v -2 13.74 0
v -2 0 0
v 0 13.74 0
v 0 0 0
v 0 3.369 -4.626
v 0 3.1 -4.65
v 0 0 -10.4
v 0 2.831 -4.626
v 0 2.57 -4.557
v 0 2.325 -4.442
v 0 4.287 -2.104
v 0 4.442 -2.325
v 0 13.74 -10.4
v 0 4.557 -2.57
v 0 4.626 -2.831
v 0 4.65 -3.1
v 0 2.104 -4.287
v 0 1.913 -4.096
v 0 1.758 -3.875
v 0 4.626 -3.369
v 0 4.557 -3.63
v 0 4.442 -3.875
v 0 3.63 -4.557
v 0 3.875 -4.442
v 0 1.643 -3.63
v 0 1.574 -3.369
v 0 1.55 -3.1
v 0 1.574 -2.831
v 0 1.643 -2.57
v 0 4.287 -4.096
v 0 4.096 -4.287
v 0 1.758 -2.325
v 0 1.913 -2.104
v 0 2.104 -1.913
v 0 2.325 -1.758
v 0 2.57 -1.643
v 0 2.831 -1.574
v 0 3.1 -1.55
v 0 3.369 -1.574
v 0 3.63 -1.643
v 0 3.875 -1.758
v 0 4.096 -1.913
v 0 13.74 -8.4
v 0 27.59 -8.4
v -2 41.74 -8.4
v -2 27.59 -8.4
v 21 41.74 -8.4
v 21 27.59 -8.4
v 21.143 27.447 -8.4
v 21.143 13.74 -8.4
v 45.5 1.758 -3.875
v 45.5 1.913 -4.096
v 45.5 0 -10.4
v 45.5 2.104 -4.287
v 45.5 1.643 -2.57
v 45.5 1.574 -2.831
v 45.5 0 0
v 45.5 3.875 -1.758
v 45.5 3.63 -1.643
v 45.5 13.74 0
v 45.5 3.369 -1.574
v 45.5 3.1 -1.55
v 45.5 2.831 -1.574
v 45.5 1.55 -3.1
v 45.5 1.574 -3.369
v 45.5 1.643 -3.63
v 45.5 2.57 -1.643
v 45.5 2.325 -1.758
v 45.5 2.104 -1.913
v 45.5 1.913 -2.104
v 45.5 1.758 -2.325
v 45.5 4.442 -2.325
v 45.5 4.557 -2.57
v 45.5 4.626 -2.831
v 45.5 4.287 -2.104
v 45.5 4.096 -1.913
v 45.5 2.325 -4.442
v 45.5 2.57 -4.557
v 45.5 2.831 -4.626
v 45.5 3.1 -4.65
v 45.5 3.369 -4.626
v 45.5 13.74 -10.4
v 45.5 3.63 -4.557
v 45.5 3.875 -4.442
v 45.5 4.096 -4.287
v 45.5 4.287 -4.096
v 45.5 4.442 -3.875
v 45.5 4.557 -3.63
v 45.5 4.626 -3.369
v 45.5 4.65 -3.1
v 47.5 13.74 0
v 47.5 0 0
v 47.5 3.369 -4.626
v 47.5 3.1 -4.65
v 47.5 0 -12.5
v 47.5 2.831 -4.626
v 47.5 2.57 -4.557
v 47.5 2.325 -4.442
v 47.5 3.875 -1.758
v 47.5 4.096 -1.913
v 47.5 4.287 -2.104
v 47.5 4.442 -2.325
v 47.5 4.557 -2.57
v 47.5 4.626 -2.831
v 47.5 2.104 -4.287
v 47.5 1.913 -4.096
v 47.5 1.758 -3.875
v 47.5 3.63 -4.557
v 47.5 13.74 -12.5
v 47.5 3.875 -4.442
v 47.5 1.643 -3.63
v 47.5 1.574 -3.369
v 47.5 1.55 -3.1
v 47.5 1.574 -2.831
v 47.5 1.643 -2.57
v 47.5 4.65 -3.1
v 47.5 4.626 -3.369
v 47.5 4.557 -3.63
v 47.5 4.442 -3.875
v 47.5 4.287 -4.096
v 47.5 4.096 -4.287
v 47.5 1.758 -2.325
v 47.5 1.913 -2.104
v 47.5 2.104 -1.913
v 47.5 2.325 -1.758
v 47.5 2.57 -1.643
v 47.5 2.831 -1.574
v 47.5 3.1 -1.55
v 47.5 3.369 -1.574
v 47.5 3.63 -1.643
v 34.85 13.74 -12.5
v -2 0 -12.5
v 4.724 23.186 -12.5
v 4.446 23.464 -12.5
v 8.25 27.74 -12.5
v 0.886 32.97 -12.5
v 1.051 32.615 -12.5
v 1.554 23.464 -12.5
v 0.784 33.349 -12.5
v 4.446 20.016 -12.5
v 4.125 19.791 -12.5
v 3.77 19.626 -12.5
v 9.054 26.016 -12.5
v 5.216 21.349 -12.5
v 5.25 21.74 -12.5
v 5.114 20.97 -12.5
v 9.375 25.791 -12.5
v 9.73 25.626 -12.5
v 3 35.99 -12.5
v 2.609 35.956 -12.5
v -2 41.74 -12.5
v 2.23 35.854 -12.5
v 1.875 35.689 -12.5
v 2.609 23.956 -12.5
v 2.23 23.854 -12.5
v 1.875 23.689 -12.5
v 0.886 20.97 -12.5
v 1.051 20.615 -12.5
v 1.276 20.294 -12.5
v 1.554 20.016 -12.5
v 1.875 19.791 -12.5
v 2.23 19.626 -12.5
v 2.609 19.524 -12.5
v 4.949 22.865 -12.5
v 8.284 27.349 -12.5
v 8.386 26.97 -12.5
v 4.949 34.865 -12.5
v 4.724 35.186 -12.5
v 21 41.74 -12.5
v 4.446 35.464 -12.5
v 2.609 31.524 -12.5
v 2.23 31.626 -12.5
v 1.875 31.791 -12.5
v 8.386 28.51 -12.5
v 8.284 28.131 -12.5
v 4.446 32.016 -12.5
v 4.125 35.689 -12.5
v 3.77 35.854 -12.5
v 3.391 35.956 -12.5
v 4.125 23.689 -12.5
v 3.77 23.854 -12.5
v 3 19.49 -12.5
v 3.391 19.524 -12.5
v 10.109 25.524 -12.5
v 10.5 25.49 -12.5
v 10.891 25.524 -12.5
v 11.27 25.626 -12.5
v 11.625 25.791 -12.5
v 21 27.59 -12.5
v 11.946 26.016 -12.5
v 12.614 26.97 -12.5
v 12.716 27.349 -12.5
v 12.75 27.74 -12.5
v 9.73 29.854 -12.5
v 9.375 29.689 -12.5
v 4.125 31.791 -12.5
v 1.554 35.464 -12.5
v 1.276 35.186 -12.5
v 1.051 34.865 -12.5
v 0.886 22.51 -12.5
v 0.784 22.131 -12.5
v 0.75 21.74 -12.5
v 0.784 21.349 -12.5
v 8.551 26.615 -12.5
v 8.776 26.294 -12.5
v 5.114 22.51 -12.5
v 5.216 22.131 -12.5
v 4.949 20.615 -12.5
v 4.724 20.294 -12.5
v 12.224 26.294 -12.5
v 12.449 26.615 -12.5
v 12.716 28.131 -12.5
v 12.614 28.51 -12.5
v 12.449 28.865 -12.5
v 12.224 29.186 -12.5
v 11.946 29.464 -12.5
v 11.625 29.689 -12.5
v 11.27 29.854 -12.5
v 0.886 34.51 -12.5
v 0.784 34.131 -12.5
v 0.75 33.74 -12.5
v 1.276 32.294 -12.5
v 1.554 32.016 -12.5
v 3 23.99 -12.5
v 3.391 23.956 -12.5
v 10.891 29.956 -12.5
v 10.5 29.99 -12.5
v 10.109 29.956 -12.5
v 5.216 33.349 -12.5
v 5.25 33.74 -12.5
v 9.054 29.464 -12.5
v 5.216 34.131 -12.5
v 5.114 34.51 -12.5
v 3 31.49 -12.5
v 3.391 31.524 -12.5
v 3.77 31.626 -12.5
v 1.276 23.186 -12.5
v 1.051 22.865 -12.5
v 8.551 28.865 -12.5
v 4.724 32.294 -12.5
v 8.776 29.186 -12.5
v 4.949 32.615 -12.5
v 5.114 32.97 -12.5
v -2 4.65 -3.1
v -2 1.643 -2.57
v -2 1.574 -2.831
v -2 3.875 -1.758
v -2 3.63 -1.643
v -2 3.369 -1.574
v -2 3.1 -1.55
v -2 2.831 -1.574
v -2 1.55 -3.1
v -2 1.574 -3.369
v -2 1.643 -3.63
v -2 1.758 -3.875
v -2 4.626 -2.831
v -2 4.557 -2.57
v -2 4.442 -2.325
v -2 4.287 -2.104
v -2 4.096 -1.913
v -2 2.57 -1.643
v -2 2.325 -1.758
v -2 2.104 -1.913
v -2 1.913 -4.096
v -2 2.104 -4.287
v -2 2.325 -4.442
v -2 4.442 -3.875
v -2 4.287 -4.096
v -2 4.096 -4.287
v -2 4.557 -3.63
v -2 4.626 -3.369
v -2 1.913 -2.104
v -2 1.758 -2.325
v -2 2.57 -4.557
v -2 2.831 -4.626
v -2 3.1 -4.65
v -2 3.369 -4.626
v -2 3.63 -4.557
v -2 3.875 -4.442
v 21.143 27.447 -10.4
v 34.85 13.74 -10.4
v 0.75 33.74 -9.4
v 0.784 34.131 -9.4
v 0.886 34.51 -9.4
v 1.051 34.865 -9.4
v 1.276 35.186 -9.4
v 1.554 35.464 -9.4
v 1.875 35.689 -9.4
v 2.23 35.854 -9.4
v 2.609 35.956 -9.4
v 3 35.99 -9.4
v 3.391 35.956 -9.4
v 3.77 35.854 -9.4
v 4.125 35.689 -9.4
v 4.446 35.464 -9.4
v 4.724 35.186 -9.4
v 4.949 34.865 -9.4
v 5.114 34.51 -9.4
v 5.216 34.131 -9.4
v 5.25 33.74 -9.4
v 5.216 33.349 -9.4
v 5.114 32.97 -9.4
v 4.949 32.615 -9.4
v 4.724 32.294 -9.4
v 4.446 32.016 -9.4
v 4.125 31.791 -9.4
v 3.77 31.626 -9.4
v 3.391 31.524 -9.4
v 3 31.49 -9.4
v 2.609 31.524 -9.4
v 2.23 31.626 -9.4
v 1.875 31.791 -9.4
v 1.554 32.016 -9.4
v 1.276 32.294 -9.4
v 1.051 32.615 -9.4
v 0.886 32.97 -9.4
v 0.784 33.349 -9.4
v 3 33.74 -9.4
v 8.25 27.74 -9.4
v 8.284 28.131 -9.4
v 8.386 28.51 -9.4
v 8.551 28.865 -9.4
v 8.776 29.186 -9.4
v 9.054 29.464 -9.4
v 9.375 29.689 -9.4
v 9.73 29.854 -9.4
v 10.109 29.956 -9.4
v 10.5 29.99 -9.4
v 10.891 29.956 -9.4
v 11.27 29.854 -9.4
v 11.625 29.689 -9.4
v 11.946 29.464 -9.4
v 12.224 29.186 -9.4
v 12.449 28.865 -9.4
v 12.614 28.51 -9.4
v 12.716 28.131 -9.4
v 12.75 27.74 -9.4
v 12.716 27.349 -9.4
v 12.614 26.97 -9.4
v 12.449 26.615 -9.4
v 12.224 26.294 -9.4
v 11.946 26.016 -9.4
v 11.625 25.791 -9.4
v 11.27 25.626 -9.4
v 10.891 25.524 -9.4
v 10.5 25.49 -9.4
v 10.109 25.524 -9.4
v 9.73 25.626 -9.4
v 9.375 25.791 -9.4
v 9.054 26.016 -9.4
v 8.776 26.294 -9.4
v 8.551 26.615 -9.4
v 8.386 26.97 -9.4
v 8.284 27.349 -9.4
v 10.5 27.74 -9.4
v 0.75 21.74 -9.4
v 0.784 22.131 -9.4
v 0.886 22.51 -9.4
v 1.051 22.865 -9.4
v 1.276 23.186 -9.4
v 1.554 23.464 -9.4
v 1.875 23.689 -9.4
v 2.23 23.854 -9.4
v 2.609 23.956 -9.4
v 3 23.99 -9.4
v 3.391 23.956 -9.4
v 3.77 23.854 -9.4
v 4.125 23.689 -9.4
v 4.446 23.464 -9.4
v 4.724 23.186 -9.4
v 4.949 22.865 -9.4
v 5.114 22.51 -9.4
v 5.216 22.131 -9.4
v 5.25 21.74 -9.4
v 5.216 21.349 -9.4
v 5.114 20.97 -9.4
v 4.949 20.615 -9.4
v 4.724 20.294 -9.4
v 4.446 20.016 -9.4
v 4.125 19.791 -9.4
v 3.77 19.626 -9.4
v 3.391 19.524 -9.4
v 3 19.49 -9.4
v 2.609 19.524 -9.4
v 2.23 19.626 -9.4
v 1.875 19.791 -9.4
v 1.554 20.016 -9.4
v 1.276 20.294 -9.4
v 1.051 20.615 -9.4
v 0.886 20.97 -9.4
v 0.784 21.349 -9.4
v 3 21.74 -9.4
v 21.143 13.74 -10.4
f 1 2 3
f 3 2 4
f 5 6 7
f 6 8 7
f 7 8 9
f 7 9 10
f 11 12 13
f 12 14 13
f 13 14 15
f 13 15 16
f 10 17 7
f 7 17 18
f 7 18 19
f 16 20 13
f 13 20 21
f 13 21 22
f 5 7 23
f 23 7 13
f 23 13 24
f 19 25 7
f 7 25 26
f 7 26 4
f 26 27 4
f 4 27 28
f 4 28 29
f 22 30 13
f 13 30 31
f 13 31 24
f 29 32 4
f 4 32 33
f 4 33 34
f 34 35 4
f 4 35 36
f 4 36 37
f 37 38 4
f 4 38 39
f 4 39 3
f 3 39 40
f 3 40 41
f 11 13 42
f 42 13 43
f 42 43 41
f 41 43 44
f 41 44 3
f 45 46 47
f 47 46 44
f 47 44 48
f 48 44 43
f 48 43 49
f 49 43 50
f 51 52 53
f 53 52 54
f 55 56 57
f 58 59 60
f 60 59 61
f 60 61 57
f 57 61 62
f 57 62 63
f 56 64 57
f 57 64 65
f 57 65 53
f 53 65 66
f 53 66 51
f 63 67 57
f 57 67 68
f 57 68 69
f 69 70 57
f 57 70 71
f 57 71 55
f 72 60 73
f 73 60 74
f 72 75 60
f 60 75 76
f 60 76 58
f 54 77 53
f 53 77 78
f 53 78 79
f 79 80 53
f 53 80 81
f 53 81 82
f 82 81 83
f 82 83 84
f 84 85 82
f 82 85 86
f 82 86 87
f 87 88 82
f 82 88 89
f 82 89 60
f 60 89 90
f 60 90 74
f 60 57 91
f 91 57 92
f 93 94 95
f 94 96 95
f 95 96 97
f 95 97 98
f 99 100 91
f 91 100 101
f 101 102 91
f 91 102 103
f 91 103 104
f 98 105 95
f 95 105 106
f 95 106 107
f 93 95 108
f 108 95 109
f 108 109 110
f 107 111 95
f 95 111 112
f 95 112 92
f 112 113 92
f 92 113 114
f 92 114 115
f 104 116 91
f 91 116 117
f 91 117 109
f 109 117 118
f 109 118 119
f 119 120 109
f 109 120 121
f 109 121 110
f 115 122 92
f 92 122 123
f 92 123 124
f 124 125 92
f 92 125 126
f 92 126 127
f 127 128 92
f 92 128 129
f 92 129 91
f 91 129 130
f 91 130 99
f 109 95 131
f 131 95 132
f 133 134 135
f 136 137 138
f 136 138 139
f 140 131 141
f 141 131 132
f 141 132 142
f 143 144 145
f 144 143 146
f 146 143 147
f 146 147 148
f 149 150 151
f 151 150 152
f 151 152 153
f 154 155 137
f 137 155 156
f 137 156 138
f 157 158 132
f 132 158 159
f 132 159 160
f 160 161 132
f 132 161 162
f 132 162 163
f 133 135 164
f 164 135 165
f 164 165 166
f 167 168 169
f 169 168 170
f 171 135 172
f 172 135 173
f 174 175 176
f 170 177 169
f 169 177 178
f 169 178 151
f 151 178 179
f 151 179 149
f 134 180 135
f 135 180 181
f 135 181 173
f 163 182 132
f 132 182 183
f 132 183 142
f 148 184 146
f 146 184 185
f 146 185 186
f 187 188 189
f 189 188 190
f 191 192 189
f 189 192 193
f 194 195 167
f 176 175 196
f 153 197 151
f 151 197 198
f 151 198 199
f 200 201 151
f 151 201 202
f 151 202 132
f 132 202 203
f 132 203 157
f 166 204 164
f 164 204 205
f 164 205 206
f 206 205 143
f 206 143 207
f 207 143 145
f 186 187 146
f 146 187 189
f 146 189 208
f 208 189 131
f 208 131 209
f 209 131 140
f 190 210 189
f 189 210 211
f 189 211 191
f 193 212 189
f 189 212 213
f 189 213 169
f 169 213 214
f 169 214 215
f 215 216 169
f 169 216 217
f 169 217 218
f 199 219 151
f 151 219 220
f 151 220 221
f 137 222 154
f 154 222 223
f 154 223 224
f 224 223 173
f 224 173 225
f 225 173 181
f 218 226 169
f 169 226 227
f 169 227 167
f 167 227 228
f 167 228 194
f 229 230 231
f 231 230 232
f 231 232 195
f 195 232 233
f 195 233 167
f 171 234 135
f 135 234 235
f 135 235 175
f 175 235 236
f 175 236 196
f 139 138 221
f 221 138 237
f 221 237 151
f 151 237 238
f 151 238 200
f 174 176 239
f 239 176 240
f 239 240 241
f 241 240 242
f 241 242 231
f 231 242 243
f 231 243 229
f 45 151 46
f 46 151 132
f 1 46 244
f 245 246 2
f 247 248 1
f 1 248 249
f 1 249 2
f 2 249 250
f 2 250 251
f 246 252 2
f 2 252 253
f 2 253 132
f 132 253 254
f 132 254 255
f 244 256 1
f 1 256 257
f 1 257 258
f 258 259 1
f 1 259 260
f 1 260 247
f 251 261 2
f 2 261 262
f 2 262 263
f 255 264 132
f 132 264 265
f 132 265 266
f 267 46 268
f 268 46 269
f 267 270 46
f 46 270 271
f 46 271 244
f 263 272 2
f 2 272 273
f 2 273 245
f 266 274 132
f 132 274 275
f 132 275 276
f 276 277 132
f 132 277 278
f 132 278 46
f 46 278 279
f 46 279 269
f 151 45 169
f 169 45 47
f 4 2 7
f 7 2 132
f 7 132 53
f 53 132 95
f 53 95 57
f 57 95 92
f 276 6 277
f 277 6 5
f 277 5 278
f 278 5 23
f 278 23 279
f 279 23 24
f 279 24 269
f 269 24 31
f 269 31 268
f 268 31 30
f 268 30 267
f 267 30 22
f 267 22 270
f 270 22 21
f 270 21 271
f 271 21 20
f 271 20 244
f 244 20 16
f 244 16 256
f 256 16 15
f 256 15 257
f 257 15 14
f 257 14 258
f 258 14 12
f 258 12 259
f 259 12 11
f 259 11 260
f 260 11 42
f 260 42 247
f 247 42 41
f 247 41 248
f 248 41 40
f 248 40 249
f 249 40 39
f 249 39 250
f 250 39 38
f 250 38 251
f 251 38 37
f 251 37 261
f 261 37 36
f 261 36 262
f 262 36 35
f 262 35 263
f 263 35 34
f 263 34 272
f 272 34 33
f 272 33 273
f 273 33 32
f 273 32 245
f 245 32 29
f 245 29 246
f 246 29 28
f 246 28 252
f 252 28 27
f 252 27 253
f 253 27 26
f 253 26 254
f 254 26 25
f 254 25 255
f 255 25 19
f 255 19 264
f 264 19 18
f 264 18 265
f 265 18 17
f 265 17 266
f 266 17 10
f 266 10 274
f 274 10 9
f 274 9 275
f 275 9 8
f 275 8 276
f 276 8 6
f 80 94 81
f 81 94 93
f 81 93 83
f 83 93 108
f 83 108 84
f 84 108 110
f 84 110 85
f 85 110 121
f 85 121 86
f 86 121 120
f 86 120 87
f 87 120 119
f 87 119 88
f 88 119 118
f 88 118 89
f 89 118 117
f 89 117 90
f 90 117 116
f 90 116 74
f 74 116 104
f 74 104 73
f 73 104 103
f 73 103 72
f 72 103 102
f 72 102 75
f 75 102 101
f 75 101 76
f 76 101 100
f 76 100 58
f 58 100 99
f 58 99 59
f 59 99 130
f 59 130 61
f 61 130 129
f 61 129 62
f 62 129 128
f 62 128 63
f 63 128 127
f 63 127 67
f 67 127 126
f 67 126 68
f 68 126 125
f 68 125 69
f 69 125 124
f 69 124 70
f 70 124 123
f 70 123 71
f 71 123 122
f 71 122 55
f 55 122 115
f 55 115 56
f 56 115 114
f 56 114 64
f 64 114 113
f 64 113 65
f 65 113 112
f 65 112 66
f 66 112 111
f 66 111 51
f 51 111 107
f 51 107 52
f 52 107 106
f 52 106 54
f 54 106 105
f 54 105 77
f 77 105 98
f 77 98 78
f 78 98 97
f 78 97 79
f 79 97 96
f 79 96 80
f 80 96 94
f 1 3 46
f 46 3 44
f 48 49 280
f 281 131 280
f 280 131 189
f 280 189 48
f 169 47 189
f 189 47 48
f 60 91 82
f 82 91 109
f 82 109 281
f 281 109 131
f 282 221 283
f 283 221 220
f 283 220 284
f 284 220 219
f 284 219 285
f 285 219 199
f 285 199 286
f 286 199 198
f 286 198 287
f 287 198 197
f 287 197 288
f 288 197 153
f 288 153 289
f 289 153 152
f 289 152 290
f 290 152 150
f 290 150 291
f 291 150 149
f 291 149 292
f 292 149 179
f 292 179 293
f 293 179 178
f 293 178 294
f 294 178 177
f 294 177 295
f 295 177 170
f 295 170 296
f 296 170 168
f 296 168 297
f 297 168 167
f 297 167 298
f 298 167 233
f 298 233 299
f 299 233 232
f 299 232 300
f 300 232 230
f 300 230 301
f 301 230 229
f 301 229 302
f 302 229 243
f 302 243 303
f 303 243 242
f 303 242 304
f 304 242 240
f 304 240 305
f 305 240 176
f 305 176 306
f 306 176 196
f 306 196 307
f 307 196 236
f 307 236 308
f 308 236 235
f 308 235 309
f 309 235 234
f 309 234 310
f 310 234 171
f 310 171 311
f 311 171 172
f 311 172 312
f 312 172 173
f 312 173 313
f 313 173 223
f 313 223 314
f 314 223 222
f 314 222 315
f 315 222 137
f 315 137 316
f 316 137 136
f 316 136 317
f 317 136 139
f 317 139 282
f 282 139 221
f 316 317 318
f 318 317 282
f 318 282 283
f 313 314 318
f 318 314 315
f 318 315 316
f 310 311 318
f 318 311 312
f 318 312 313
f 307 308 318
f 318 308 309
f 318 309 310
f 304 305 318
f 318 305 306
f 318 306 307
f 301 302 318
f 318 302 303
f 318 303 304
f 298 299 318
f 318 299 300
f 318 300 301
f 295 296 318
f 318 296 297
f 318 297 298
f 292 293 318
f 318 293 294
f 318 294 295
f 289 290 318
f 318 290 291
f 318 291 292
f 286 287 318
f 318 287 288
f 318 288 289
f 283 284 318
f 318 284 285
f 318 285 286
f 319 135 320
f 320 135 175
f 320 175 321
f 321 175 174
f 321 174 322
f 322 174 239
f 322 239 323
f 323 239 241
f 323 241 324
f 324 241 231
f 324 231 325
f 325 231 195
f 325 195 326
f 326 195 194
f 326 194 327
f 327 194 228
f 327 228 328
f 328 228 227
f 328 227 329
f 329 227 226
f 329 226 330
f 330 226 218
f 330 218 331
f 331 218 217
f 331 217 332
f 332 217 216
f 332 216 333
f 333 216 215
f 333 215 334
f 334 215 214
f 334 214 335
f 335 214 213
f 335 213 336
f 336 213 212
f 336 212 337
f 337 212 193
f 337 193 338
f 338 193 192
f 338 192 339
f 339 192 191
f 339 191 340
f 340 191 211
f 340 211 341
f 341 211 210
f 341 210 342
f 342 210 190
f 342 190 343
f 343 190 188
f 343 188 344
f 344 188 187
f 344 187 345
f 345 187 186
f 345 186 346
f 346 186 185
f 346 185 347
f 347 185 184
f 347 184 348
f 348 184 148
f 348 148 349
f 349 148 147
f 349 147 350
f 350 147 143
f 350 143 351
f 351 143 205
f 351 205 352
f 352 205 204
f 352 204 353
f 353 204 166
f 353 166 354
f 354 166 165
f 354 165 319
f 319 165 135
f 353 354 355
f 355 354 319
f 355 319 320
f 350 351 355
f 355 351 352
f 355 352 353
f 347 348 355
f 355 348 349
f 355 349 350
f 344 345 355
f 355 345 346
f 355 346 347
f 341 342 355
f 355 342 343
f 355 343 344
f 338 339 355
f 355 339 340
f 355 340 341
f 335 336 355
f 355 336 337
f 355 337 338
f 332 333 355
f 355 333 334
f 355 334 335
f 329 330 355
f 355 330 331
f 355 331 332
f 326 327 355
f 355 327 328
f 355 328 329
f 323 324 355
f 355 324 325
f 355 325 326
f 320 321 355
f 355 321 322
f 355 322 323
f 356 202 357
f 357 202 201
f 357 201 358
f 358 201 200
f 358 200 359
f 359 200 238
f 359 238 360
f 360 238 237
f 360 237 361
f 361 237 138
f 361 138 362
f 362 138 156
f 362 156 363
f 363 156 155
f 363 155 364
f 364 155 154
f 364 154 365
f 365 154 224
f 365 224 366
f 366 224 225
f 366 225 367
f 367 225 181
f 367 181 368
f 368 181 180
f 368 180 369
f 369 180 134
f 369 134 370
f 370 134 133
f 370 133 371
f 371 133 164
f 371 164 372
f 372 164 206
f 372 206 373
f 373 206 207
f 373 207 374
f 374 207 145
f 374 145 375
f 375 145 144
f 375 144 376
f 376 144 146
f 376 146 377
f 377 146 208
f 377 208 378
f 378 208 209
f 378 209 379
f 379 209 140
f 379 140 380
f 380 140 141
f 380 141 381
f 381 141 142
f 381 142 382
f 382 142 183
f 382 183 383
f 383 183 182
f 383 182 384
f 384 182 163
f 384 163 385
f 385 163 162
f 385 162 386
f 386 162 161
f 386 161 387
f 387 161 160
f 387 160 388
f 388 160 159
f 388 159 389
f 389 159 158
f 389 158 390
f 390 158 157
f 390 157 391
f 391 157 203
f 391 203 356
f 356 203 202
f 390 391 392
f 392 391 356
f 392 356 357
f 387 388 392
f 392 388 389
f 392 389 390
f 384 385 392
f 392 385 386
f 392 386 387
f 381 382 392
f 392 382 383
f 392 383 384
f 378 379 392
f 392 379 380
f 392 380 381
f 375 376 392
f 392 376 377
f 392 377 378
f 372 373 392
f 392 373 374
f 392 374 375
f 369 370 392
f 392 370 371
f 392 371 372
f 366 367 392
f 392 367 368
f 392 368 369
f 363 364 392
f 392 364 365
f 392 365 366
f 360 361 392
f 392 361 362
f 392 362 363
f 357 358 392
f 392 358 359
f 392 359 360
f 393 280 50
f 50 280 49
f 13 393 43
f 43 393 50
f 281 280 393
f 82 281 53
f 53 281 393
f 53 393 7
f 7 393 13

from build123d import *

# Parameters (mm, degrees)
PROFILEBOSS_EXTRUDE3_DEPTH            = 41.74
SKETCH5_R                             = 1.55
SHROUDHOLESCUT_EXTRUDE1_DEPTH         = 66.944883046
SIDECUTOUTCUT_EXTRUDE3_DEPTH          = 66.944883046
FRONTCUTOUTCUT_EXTRUDE4_DEPTH         = 65.457176482
SKETCH11_R                            = 2.25
DRAGCHAINMOUNTHOLESCUT_EXTRUDE6_DEPTH = 3.1
CUT_EXTRUDE7_DEPTH                    = 2


with BuildPart() as part:
    # Sketch4 → ProfileBoss-Extrude3 (new body)
    with BuildSketch(Plane(origin=(0, 0, 0), x_dir=(1, 0, 0), z_dir=(0, 1, 0))):
        Polygon((0, 0), (0, 8.4), (45.5, 8.4), (45.5, 0), (47.5, 0), (47.5, 12.5), (-2, 12.5), (-2, 0), align=None)
    extrude(amount=PROFILEBOSS_EXTRUDE3_DEPTH)

    # Sketch5 → ShroudHolesCut-Extrude1 (cut, through all)
    with BuildSketch(Plane(origin=(47.5, 0, 0), x_dir=(0, 0, -1), z_dir=(1, 0, 0))):
        with Locations((3.1, 3.1)):
            Circle(SKETCH5_R)
    extrude(amount=-SHROUDHOLESCUT_EXTRUDE1_DEPTH, mode=Mode.SUBTRACT)

    # SideCutoutSketch9 → SideCutoutCut-Extrude3 (cut, through all)
    with BuildSketch(Plane.ZY.offset(2)):
        Polygon((0, 41.74), (-8.4, 41.74), (-8.4, 27.59), (0, 13.74), align=None)
    extrude(amount=-SIDECUTOUTCUT_EXTRUDE3_DEPTH, mode=Mode.SUBTRACT)

    # FrontCutoutSketch7 → FrontCutoutCut-Extrude4 (cut, through all)
    with BuildSketch(Plane(origin=(0, 0, -12.5), x_dir=(-1, 0, 0), z_dir=(0, 0, -1))):
        Polygon((-21, 41.74), (-21, 27.59), (-34.85, 13.74), (-47.5, 13.74), (-47.5, 41.74), align=None)
    extrude(amount=-FRONTCUTOUTCUT_EXTRUDE4_DEPTH, mode=Mode.SUBTRACT)

    # Sketch11 → DragChainMountHolesCut-Extrude6 (cut)
    with BuildSketch(Plane(origin=(0, 0, -12.5), x_dir=(-1, 0, 0), z_dir=(0, 0, -1))):
        with Locations((-3, 21.74)):
            Circle(SKETCH11_R)
        with Locations((-10.5, 27.74)):
            Circle(SKETCH11_R)
        with Locations((-3, 33.74)):
            Circle(SKETCH11_R)
    extrude(amount=-DRAGCHAINMOUNTHOLESCUT_EXTRUDE6_DEPTH, mode=Mode.SUBTRACT)

    # Sketch13 → Cut-Extrude7 (cut)
    with BuildSketch(Plane.XY.offset(-8.4)):
        Polygon((21.142710497, 27.447289503), (34.85, 13.74), (45.5, 13.74), (45.5, 0), (0, 0), (0, 13.74), (21.142710497, 13.74), align=None)
    extrude(amount=-CUT_EXTRUDE7_DEPTH, mode=Mode.SUBTRACT)


solid = part.part
